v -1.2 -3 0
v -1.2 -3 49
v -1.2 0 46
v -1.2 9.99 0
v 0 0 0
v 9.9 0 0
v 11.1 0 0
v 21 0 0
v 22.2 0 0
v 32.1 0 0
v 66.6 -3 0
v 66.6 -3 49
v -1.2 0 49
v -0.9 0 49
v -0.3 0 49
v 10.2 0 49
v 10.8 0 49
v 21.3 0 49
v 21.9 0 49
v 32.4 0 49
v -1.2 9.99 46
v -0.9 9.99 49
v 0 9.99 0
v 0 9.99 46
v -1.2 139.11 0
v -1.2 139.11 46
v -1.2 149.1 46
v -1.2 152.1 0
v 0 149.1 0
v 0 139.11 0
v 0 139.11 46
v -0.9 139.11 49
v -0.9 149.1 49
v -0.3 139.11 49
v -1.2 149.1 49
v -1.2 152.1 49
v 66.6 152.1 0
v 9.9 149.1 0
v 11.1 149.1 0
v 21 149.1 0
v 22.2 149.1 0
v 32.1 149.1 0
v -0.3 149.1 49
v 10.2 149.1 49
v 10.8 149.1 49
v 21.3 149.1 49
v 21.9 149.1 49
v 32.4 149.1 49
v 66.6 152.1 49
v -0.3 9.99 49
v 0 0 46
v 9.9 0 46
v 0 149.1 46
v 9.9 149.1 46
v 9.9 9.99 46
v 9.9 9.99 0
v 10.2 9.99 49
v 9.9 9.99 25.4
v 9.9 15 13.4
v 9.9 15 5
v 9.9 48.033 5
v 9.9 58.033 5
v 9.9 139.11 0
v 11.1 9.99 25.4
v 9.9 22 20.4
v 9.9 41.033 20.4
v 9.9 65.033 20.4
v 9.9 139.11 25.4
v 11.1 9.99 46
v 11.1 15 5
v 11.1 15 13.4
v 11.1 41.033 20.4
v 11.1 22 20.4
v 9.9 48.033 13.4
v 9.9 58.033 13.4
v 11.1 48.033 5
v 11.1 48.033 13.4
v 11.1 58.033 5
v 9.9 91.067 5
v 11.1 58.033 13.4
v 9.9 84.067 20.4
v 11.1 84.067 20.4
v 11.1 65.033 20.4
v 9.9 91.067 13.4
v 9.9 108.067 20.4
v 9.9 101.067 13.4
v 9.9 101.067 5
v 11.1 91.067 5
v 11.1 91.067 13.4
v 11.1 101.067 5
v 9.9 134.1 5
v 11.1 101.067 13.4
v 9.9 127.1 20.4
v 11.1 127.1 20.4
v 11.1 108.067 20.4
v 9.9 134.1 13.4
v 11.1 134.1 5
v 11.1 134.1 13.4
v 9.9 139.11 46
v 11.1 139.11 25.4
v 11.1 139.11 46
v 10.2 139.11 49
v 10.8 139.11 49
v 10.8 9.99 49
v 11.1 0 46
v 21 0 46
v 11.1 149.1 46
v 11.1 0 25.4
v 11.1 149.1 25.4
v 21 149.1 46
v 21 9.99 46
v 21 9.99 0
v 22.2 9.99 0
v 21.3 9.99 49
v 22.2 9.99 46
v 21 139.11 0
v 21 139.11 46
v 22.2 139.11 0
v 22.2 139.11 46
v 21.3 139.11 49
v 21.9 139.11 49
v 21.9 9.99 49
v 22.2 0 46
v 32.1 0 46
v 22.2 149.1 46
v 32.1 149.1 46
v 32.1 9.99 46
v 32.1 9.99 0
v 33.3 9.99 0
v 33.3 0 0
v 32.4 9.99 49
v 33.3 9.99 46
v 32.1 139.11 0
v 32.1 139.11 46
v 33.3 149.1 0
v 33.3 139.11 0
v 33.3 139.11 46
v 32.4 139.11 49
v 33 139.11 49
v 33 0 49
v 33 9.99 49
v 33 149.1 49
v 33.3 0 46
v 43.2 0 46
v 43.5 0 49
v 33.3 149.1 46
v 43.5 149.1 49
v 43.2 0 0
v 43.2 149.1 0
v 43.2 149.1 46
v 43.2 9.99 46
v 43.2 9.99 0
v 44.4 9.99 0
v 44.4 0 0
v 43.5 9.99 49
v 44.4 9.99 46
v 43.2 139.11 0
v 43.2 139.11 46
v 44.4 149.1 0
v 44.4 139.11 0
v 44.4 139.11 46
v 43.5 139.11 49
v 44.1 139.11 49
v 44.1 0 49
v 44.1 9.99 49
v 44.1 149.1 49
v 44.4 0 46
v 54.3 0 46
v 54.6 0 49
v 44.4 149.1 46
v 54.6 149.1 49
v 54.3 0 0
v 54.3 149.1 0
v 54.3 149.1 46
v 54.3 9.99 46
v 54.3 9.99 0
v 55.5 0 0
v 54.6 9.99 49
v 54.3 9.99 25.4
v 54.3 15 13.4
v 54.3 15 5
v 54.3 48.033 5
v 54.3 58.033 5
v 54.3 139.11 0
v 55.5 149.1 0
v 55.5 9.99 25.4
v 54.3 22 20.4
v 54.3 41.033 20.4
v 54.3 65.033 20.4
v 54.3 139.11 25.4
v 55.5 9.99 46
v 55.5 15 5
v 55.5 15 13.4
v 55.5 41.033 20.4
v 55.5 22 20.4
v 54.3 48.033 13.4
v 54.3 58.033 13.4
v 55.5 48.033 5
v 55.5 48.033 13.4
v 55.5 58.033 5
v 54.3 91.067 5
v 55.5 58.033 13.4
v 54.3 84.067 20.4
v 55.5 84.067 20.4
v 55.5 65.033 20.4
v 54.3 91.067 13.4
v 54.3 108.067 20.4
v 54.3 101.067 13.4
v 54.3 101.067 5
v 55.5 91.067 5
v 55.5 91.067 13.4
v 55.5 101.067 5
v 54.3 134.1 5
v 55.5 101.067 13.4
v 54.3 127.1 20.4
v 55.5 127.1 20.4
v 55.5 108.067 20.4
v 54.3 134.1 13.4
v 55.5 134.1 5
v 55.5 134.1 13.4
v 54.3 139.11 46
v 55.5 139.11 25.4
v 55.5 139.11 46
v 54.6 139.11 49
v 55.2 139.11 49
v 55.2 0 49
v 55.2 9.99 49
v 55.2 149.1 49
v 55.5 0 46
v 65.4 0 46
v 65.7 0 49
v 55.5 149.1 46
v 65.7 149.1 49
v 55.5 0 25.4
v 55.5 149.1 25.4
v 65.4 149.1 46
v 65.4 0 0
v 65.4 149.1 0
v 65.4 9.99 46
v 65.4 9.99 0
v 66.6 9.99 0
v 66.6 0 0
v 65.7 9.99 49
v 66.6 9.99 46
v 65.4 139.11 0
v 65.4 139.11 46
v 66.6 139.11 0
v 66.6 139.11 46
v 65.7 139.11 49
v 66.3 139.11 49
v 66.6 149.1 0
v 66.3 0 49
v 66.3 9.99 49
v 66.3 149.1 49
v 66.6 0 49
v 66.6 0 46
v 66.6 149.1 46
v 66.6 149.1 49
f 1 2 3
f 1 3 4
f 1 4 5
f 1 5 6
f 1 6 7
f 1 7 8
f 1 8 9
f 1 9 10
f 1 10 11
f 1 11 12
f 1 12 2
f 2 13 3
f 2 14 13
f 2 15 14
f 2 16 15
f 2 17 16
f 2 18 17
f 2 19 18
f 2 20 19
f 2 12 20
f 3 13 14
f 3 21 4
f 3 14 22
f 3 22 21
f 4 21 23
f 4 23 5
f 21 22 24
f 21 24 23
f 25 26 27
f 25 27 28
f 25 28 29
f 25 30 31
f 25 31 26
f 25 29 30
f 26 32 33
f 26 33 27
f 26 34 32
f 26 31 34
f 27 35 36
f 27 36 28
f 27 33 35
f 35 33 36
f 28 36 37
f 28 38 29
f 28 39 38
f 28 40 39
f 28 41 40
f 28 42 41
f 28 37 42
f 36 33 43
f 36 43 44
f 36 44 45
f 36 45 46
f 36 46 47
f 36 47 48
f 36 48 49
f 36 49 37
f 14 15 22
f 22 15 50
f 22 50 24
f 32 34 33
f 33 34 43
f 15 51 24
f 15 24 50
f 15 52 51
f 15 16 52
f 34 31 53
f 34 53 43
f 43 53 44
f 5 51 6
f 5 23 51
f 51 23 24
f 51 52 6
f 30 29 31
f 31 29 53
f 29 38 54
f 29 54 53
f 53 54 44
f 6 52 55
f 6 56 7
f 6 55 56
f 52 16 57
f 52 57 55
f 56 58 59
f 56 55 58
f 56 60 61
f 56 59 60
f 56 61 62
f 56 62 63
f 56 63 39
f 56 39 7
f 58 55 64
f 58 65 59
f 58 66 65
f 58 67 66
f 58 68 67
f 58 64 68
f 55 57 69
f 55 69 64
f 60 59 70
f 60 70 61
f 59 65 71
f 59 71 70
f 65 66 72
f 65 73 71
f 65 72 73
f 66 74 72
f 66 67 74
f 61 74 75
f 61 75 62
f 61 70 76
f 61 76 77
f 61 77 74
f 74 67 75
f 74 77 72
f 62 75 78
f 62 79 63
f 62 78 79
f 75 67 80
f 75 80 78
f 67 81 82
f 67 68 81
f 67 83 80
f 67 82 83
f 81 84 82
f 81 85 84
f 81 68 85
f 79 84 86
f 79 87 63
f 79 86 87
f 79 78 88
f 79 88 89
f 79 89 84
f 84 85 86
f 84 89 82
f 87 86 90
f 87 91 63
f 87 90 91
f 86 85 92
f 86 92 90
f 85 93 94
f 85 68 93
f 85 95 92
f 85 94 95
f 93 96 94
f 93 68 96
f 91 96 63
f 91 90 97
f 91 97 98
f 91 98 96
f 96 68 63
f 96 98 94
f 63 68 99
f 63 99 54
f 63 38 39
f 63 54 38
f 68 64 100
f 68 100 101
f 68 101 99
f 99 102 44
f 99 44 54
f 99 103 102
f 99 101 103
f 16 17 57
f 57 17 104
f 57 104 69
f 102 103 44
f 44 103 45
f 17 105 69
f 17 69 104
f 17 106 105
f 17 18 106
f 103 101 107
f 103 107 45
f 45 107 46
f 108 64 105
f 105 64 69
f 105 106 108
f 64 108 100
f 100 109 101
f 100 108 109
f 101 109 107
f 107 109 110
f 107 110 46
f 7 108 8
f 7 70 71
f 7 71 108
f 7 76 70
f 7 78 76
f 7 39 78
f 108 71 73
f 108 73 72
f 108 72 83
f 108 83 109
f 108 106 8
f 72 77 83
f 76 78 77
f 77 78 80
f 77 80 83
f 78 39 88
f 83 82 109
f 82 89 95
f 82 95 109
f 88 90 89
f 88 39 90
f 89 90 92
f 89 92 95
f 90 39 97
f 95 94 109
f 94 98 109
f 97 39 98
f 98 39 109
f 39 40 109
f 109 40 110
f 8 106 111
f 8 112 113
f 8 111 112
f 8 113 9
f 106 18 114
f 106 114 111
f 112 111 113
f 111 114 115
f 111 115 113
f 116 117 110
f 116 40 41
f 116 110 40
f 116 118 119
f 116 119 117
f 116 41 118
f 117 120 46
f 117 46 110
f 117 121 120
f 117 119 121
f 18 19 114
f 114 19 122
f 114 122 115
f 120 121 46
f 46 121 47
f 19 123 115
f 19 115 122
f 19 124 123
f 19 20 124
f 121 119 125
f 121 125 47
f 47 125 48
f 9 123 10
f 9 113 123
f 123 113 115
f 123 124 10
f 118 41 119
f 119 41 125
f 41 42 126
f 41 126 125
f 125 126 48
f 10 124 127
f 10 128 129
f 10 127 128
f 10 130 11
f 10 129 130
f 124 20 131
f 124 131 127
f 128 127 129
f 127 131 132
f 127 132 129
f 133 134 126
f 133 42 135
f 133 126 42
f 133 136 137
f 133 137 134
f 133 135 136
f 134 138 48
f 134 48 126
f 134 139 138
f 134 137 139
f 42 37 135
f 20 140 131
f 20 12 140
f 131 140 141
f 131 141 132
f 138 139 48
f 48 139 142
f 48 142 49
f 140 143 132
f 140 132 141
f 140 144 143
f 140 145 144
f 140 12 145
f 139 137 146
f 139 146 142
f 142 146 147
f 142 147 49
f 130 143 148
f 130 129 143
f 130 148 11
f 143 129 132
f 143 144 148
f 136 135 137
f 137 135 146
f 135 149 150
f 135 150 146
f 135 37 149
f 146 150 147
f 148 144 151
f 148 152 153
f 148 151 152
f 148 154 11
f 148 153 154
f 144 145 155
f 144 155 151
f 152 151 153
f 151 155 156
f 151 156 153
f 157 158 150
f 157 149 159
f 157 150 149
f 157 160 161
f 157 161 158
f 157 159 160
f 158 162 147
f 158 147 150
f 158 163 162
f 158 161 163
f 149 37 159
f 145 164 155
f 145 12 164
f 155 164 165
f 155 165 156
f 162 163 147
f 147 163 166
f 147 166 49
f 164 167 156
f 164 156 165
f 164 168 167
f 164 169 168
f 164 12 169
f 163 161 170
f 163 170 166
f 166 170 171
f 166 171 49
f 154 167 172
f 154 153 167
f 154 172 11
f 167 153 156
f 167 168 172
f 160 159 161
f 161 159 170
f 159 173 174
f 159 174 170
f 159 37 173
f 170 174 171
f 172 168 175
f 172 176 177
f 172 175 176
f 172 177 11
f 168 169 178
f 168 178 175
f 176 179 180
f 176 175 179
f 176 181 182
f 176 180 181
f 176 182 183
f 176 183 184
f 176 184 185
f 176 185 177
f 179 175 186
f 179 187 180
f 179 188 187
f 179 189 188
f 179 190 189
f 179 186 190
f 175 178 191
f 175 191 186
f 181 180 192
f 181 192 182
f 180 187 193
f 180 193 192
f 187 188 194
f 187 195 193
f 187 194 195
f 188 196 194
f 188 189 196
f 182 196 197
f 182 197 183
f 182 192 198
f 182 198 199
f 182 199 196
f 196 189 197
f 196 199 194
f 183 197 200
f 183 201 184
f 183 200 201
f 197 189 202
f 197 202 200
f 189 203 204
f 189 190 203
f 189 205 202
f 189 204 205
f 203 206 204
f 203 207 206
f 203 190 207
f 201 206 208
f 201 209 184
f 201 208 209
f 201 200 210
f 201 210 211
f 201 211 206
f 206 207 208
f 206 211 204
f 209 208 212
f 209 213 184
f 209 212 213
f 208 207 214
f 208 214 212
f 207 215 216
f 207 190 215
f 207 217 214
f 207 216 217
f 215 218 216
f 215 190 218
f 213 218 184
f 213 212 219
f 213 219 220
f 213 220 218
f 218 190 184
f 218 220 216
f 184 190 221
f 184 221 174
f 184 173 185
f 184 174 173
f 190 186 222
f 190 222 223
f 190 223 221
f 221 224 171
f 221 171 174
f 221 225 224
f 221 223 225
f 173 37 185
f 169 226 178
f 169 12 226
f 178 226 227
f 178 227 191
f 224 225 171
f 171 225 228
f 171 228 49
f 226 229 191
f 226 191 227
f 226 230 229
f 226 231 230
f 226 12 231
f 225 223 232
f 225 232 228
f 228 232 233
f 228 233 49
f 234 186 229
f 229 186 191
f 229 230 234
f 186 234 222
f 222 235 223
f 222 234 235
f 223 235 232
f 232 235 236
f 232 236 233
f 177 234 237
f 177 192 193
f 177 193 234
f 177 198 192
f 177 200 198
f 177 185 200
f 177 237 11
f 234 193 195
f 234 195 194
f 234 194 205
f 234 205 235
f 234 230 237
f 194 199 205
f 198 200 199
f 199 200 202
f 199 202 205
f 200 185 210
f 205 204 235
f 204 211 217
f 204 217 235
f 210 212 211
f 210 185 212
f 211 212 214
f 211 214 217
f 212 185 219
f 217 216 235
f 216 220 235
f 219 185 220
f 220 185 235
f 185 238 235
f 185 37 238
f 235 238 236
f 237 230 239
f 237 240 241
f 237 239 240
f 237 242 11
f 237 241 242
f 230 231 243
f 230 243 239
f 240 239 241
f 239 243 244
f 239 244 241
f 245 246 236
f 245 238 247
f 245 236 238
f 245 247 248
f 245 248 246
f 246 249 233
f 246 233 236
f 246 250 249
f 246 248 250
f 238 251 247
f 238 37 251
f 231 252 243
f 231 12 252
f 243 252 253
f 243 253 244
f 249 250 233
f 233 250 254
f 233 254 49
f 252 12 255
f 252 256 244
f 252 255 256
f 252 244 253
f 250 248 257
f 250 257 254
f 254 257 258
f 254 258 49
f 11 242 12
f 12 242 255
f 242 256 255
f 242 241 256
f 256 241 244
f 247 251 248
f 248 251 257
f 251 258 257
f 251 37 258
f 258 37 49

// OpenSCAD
// ====================================================================
// Phone tray insert - holds N phones on edge, separated by thin fins
// Plan and reasoning: documents/PHONE_TRAY_INSERT_PLAN.md
// Dimensions in millimeters (mm). OpenSCAD 2021.01.
//
// Frame (x across the tray's width = the direction the phones stack,
//        y along the tray's length = the phone's length, z up):
//   x = 0 .. row_w     the row of slots; slot i holds phone i
//   y = 0 .. len_in    the phones' length (bottom end at y = 0)
//   z = 0              top of the foam pad, i.e. the face the phones stand on
//
// One printable part, a "ladder":
//   two end walls   - one beyond each phone end, full width. They stand on the tray
//                     floor (bar_drop deep, past the foam), stop the phones sliding
//                     along the tray and carry the fins
//   fins            - thin plates inside each end wall, one between each pair of
//                     phones, each reaching fin_reach (< 1/2") along the phone from its end.
//                     With outer_fins, one more on the outside of each outermost phone, so
//                     every phone has a fin on both faces
//   two rails       - 1" tall strips that join the end walls (use_rails). Each sits at a fin position,
//                     the first one in from each side (between the first and second phone, and between
//                     the last two), and runs the whole length in place of that fin, so a rail adds no width.
//                     Each has rail_cuts (3) cut-outs to save material
//
// The phone size and fit (section 2 and the first two lines of section 4) are the same as in
// cad/phone_border_holder.scad, where a real phone was reported to fit well.
// Values marked ESTIMATE have NOT been measured on the real tray. Replace
// them with caliper readings; the asserts below refuse to render a design that does
// not fit.
//
// part = "assembly"  frame + ghost phones, for looking at   (default)
//        "print"     frame only, flat on the bed, as it prints
//        "phones"    ghost phones only
// For an 8-phone insert: set n_phones = 8 and read the notes under "WIDTH" below.
// ====================================================================

part = "print";

// --- 1. WHAT TO HOLD ---
n_phones   = 6;          // 6 now; 8 for the separate 8-phone insert

// --- 2. PHONE (TCL A502DL) ---
// Same values as cad/phone_border_holder.scad, whose cradle (phone_t + 0.5 deep, phone_len + 1.0 long)
// the user reports fits a real phone well. They are still the retailer page's figures, not calipered;
// what the holder shows is that a real phone fits that cradle, not how much smaller than it the phone is.
phone_t    = 9.4;        // thickness (a camera bump in the fin zones would make the real thickness larger)
phone_len  = 148.1;      // length, bottom end to top end
phone_w    = 69.6;       // width; the phone stands on this edge, so this is its height

// --- 3. TRAY (measure with calipers) ---
rib_tip_span = 85.0;     // ESTIMATE: wall-rib tip to opposite rib tip across the tray's width.
                         // = 6 x phone_t + 28.6 mm (the user's "1 1/8 inch left after 6 phones")
floor_len    = 180.0;    // ESTIMATE: inside length of the tray at the floor
foam_t       = 0;     // MEASURED by the user: 1/2 inch foam pad under the phones

// --- 4. FIT ---
clear      = 0.5;        // Clearance per slot (total, not per side). 0.5 = the border holder's fit, which works.
                         // Below ~0.3 mm phones may bind
len_clear  = 1.0;        // Extra length between the two end walls beyond the phone's length. 1.0 = the border holder's fit
side_clear = 0.0;        // Extra gap kept between the insert and each rib tip

// --- 5. FINS ---
fin_t      = 1.2;        // Fin thickness. 1.2 = 3 perimeters at a 0.4 mm nozzle. For 8 phones try 0.8
fin_reach  = 10.0;       // How far a fin reaches along the phone from its end. Must be < 12.7 (1/2")
fin_h      = 49.0;       // Fin height above the foam (about 3/4")
lead_h     = 3.0;        // Height of the chamfer on the fin top that guides a phone in
outer_fins = true;       // Also put a fin outside each outermost phone (N + 1 fins per comb)

// --- 6. FRAME ---
end_t      = 3.0;        // Thickness of each end wall
end_h      = 49.0;       // Height of the end walls above the foam
use_rails  = true;       // false = two loose combs (no rails; then place them by hand). Needs n_phones >= 3
rail_t     = fin_t;      // Rail thickness. A rail takes a fin's place, so it can be no thicker than a fin
rail_top   = 25.4;       // Top of the rails above the foam: 1 inch
rail_cuts  = 3;          // Cut-outs in each rail, to save material (0 = solid rail)
rail_margin = 15.0;      // Solid rail kept at each end, measured from the end wall. Must be at least fin_reach,
                         // or the fin (which is taller than the rail) would fill the first cut-out
rail_post  = 10.0;       // Solid rail left between two cut-outs
rail_bar   = 5.0;        // Solid strip left along the bottom and the top of the rail, above and below the cut-outs
rail_chamfer = 7.0;      // The top corners of each cut-out are cut at 45 degrees by this much, so the top of the
                         // cut-out is a shorter bridge when printing (the rail stands upright on the bed)
bar_drop   = foam_t;     // How far the end walls and rails reach down, past the foam, to the floor.
                         // 0 = everything stands on the foam. The rails now run between phones, over the
                         // foam, so with foam_t > 0 they would have to pass through it: then set bar_drop = 0
                         // (everything on the foam) or cut a slot in the foam for each rail

// ====================================================================
// DERIVED
// ====================================================================
eps      = 0.01;
slot_w   = phone_t + clear;
pitch    = slot_w + fin_t;
row_w    = n_phones * slot_w + (n_phones - 1) * fin_t;
len_in   = phone_len + len_clear;
side_w   = outer_fins ? fin_t : 0;          // width taken outside the row, per side (the rails are inside the row)
total_w  = row_w + 2 * side_w;
total_len = len_in + 2 * end_t;
spare_w  = rib_tip_span - 2 * side_clear - total_w;
cut_len  = rail_cuts > 0                   // length of one rail cut-out: what is left between the two end
           ? (len_in - 2 * rail_margin - (rail_cuts - 1) * rail_post) / rail_cuts   // margins, minus the posts
           : 0;
cut_h    = rail_top - 2 * rail_bar;        // height of one rail cut-out

// WIDTH: the row must fit between the rib tips. With the defaults, 6 phones leave about
// 17 mm to spare. The rails sit at fin positions, so only the outer fins take width beyond the row.
// 8 phones with phone_t = 9.4 and the border holder's clear = 0.5 do NOT fit with outer fins
// (short by 1.4 mm at fin_t = 0.8). With outer_fins = false they fit with 0.2 mm to spare, or keep the
// outer fins with clear = 0.3. 0.2 mm is inside the error of the estimated rib_tip_span - see
// section 4 of the plan.
assert(!use_rails || n_phones >= 3, "the rails need at least 3 phones (two different inner fins)");
assert(rail_t <= fin_t, "a rail takes a fin's place, so rail_t cannot exceed fin_t");
assert(rail_cuts == 0 || (rail_margin >= fin_reach && cut_len >= 10 && cut_h >= 5
                          && rail_chamfer > 0 && rail_chamfer <= cut_h && 2 * rail_chamfer < cut_len),
       str("rail cut-outs do not fit: each would be ", cut_len, " x ", cut_h,
           " mm. Needs rail_margin >= fin_reach, a length and height of at least 10 and 5 mm, ",
           "and 0 < rail_chamfer <= the cut-out's height and under half its length"));
assert(spare_w >= 0,
       str("Does not fit across the tray: need ", total_w, " mm, have ",
           rib_tip_span - 2 * side_clear, " mm (short by ", -spare_w, " mm)"));
assert(total_len <= floor_len,
       str("Does not fit along the tray: need ", total_len, " mm, floor is ", floor_len, " mm"));
assert(fin_reach < 12.7, "fin_reach must be under 1/2 inch (12.7 mm)");
assert(fin_reach * 2 < len_in, "fins from both ends would overlap");
assert(fin_t >= 0.8, "fin_t under 0.8 mm is too thin to print reliably");
assert(clear >= 0.3, "clear under 0.3 mm: phones may bind");
assert(total_w <= 256 && total_len <= 256, "does not fit the P2S bed (256 x 256 mm)");

echo(str("n_phones=", n_phones, "  row_w=", row_w, "  total_w=", total_w,
         "  spare across=", spare_w, " mm  total_len=", total_len,
         "  spare along=", floor_len - total_len, " mm"));

// ====================================================================
// PARTS
// ====================================================================

// One fin: x = 0..fin_t, y = 0..fin_reach, z = 0..fin_h, chamfered top.
module fin() {
    lx = fin_t * 0.25;
    translate([0, fin_reach, 0])
        rotate([90, 0, 0])
            linear_extrude(fin_reach)
                polygon([[0, 0], [fin_t, 0], [fin_t, fin_h - lead_h],
                         [fin_t - lx, fin_h], [lx, fin_h], [0, fin_h - lead_h]]);
}

// The comb at the phones' bottom end (y = 0): end wall at y < 0, fins at y > 0.
module comb_bottom() {
    // end wall, full width including the outer fins' width
    translate([-side_w, -end_t, -bar_drop])
        cube([row_w + 2 * side_w, end_t, bar_drop + end_h]);
    // fins, sunk eps into the wall so the union is one solid
    // fin j sits after slot j: j = -1 is the outer fin before slot 0, j = n-1 the one after the last slot
    for (j = [(outer_fins ? -1 : 0) : (outer_fins ? n_phones - 1 : n_phones - 2)])
        translate([(j + 1) * slot_w + j * fin_t, -eps, 0])
            fin();
}

module comb_top() {
    translate([0, len_in, 0])
        mirror([0, 1, 0])
            comb_bottom();
}

// One cut-out through a rail, in the rail's own frame (x = its thickness, y = along it, z = up). The
// bottom corners are square; the top corners are cut at 45 degrees
module rail_cut(y0, z0) {
    c = rail_chamfer;
    translate([-1, y0, z0])
        rotate([90, 0, 90])
            linear_extrude(rail_t + 2)
                polygon([[0, 0], [cut_len, 0], [cut_len, cut_h - c], [cut_len - c, cut_h],
                         [c, cut_h], [0, cut_h - c]]);
}

// Each rail is at the position of the first inner fin on its side (fin j = 0, and fin j = n - 2), spanning
// both end walls. It is rail_top (1") tall above the foam, with rail_cuts cut-outs between the solid ends.
module rails() {
    z0 = -bar_drop;
    h  = bar_drop + rail_top;
    for (j = [0, n_phones - 2])
        translate([(j + 1) * slot_w + j * fin_t, -end_t, z0])
            difference() {
                cube([rail_t, total_len, h]);
                // rail frame: y = 0 is the end wall's outer face, so the phones' end is at y = end_t
                for (i = [0 : 1 : rail_cuts - 1])   // explicit step: rail_cuts = 0 gives no cut-outs
                    rail_cut(end_t + rail_margin + i * (cut_len + rail_post), bar_drop + rail_bar);
            }
}

module frame() {
    comb_bottom();
    comb_top();
    if (use_rails) rails();
}

module ghost_phones() {
    color("dimgray", 0.5)
        for (i = [0 : n_phones - 1])
            translate([i * pitch + clear / 2, 0, 0])
                cube([phone_t, phone_len, phone_w]);
}

// ====================================================================
// OUTPUT
// ====================================================================
if (part == "print") {
    // flat on the bed: lowest face (the end walls' and rails' floor face) at z = 0
    translate([0, 0, bar_drop]) frame();
} else if (part == "phones") {
    ghost_phones();
} else {
    color("orange") frame();
    ghost_phones();
}
